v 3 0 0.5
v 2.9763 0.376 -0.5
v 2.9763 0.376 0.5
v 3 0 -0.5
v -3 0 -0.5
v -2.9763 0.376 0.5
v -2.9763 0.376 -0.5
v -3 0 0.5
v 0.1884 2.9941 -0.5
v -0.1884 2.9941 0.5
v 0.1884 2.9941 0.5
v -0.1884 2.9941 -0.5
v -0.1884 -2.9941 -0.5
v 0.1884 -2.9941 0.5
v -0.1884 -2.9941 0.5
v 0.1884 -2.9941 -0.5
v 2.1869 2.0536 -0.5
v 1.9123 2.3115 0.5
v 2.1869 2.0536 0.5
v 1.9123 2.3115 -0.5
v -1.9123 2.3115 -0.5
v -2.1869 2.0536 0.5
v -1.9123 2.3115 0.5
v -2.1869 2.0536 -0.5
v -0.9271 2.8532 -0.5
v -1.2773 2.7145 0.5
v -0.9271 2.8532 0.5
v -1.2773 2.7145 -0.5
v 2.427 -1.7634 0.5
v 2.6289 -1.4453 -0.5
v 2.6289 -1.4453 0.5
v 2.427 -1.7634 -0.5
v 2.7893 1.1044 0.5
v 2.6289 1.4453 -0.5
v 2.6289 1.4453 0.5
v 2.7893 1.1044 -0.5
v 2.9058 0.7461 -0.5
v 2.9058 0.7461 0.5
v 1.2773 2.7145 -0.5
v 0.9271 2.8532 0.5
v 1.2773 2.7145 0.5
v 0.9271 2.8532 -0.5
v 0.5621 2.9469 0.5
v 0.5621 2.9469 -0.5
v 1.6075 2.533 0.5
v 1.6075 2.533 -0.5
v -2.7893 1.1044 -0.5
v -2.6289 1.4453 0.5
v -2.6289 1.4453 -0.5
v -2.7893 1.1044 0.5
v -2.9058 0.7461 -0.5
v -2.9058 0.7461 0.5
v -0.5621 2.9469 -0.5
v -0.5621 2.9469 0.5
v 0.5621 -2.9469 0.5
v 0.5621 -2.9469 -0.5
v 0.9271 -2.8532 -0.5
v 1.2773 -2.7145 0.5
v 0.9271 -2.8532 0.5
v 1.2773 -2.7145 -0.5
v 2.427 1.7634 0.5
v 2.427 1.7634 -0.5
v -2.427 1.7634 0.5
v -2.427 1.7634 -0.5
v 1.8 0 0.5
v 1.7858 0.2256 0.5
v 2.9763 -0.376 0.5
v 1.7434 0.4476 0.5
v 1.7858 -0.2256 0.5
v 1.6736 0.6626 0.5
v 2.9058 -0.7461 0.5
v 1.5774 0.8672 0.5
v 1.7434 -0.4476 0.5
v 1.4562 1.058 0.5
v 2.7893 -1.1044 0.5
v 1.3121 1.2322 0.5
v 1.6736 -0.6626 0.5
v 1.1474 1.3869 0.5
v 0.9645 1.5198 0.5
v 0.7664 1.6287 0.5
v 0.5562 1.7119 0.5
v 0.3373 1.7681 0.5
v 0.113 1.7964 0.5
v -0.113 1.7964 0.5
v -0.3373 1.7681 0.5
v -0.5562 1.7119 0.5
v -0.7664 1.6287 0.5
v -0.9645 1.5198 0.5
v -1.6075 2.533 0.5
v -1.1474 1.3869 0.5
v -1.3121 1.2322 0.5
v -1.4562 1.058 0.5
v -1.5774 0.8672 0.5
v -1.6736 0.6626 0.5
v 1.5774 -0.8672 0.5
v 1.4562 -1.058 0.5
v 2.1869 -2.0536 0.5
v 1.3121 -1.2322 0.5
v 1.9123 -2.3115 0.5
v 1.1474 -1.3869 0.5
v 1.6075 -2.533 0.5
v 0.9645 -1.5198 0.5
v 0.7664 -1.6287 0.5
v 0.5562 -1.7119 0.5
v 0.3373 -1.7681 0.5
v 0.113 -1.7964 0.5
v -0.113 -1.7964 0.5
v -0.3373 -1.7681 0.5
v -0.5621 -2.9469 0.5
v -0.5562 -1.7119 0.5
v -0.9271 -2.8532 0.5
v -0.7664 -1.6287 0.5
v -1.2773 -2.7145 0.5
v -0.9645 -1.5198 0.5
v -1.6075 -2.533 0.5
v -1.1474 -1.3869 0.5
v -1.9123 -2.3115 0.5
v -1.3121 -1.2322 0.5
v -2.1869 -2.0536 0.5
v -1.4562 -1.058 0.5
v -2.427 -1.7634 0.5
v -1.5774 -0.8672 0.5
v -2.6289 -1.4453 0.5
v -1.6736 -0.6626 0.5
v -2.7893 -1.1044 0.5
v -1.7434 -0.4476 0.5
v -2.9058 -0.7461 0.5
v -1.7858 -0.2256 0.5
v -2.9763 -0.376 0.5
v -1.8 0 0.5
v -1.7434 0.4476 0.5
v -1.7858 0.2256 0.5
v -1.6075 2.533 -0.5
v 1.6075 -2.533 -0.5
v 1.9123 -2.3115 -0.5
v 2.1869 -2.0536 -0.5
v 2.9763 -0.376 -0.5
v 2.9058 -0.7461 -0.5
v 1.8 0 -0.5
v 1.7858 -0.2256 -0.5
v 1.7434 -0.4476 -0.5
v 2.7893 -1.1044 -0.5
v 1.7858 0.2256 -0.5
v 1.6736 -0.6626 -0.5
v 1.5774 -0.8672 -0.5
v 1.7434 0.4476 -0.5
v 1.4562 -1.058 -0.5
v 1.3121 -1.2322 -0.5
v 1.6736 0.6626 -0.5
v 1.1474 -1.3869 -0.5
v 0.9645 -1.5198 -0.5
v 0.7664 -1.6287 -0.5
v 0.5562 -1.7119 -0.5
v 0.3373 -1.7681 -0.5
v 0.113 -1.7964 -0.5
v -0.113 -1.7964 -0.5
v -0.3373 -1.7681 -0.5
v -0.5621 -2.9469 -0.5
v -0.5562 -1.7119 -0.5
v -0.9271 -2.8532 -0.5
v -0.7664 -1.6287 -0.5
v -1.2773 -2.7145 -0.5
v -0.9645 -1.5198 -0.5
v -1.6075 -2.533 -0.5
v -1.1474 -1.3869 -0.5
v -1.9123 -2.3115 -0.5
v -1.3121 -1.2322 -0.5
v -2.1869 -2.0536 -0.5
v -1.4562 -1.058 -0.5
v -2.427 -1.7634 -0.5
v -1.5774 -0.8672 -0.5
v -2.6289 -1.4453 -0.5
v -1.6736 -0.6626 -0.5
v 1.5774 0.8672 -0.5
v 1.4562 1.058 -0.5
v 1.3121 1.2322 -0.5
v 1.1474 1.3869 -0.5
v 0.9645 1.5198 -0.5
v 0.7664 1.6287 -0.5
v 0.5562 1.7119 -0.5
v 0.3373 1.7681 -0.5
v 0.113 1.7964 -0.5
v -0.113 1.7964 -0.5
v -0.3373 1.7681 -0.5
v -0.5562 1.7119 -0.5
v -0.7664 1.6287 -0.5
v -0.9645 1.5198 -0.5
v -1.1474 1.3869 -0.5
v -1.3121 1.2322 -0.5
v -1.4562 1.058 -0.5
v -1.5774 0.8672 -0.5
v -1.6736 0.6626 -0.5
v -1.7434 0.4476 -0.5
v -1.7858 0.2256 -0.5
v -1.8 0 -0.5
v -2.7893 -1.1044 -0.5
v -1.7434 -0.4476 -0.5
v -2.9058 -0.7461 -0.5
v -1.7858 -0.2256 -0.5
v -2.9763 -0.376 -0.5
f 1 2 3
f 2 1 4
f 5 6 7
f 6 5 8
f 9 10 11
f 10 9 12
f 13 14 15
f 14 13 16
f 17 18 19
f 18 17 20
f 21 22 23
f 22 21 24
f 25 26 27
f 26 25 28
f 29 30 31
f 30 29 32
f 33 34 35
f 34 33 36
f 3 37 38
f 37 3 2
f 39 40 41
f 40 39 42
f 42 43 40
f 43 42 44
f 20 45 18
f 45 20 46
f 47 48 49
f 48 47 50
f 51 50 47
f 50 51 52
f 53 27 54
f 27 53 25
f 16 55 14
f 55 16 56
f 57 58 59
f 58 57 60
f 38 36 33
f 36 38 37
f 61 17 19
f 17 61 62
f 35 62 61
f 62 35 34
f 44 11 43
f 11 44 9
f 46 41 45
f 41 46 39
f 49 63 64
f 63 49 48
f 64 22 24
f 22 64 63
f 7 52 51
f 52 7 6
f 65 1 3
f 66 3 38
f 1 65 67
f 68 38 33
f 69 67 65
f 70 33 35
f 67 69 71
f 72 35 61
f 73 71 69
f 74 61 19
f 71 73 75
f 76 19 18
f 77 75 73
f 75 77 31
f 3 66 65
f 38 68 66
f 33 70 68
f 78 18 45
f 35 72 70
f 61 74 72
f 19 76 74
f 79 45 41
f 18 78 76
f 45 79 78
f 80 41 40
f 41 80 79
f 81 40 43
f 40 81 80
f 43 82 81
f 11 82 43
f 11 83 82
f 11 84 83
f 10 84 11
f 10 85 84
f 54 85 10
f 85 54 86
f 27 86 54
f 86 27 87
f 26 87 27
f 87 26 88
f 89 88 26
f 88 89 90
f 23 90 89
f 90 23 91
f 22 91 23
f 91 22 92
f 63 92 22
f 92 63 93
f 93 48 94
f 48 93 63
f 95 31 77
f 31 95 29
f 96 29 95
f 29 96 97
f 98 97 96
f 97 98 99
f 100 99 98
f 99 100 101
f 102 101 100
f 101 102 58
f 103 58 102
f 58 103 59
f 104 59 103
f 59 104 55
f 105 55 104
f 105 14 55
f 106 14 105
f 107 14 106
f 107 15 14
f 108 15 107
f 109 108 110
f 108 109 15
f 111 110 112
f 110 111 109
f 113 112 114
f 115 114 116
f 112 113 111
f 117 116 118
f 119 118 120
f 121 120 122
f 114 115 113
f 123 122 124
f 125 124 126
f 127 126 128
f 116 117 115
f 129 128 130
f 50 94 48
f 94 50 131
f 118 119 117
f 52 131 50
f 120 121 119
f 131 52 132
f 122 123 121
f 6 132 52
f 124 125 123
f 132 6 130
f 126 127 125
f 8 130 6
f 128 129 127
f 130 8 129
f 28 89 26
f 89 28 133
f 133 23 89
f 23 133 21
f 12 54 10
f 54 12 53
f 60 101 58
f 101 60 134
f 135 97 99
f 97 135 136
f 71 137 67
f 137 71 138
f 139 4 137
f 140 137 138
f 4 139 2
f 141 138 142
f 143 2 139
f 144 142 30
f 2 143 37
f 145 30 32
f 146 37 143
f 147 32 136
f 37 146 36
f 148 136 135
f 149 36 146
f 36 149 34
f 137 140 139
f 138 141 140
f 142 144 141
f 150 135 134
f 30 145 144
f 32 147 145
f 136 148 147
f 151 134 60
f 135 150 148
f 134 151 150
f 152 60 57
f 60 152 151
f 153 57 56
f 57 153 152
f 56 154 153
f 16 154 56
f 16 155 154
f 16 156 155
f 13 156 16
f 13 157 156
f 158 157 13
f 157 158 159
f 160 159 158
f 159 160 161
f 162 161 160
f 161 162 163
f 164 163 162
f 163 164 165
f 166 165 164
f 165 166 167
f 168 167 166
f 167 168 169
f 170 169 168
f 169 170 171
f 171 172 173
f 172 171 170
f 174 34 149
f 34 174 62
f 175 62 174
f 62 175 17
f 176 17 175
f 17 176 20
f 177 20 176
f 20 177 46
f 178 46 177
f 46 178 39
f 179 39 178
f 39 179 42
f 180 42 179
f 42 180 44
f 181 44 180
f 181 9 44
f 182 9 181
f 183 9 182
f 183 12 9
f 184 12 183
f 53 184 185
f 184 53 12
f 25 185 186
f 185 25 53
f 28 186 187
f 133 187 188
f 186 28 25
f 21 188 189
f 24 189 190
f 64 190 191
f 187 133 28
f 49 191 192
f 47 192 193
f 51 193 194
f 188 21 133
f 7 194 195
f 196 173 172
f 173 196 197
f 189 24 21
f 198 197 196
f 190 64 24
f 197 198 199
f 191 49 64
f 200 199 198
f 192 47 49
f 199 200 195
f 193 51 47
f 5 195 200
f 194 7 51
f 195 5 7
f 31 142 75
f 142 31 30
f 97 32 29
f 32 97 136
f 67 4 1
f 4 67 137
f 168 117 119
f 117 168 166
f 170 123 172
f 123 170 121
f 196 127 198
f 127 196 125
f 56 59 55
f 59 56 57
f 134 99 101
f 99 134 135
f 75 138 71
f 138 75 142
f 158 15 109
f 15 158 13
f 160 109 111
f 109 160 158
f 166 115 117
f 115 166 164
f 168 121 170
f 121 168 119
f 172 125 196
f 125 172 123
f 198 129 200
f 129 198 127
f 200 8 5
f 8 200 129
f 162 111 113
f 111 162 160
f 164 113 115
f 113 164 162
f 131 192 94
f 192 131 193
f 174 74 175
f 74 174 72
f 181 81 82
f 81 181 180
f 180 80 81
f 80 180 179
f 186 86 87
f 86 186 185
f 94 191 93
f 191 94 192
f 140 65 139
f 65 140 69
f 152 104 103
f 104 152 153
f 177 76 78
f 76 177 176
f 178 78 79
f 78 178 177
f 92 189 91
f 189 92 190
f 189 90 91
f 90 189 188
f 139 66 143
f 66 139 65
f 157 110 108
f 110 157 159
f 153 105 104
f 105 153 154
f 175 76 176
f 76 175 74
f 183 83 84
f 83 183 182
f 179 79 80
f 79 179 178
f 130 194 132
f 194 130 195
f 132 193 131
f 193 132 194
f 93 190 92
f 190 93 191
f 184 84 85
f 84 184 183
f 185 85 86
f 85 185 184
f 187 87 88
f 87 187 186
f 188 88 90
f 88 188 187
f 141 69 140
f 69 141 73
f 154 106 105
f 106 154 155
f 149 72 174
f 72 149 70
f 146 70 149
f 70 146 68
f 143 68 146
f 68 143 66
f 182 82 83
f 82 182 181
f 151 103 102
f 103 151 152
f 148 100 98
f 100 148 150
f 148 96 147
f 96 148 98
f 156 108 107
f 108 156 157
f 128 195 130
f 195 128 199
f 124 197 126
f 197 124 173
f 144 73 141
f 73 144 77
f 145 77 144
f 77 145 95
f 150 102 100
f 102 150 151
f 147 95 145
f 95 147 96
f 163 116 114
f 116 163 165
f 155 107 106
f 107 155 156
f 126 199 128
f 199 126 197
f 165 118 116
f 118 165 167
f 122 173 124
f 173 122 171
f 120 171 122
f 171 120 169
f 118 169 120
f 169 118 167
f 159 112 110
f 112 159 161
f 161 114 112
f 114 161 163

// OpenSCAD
$fn = 50;


difference() {
	union() {
		translate(v = [0, 0, -0.5000000000]) {
			cylinder(h = 1, r = 3.0000000000);
		}
	}
	union() {
		translate(v = [0, 0, -100.0000000000]) {
			cylinder(h = 200, r = 1.8000000000);
		}
	}
}
